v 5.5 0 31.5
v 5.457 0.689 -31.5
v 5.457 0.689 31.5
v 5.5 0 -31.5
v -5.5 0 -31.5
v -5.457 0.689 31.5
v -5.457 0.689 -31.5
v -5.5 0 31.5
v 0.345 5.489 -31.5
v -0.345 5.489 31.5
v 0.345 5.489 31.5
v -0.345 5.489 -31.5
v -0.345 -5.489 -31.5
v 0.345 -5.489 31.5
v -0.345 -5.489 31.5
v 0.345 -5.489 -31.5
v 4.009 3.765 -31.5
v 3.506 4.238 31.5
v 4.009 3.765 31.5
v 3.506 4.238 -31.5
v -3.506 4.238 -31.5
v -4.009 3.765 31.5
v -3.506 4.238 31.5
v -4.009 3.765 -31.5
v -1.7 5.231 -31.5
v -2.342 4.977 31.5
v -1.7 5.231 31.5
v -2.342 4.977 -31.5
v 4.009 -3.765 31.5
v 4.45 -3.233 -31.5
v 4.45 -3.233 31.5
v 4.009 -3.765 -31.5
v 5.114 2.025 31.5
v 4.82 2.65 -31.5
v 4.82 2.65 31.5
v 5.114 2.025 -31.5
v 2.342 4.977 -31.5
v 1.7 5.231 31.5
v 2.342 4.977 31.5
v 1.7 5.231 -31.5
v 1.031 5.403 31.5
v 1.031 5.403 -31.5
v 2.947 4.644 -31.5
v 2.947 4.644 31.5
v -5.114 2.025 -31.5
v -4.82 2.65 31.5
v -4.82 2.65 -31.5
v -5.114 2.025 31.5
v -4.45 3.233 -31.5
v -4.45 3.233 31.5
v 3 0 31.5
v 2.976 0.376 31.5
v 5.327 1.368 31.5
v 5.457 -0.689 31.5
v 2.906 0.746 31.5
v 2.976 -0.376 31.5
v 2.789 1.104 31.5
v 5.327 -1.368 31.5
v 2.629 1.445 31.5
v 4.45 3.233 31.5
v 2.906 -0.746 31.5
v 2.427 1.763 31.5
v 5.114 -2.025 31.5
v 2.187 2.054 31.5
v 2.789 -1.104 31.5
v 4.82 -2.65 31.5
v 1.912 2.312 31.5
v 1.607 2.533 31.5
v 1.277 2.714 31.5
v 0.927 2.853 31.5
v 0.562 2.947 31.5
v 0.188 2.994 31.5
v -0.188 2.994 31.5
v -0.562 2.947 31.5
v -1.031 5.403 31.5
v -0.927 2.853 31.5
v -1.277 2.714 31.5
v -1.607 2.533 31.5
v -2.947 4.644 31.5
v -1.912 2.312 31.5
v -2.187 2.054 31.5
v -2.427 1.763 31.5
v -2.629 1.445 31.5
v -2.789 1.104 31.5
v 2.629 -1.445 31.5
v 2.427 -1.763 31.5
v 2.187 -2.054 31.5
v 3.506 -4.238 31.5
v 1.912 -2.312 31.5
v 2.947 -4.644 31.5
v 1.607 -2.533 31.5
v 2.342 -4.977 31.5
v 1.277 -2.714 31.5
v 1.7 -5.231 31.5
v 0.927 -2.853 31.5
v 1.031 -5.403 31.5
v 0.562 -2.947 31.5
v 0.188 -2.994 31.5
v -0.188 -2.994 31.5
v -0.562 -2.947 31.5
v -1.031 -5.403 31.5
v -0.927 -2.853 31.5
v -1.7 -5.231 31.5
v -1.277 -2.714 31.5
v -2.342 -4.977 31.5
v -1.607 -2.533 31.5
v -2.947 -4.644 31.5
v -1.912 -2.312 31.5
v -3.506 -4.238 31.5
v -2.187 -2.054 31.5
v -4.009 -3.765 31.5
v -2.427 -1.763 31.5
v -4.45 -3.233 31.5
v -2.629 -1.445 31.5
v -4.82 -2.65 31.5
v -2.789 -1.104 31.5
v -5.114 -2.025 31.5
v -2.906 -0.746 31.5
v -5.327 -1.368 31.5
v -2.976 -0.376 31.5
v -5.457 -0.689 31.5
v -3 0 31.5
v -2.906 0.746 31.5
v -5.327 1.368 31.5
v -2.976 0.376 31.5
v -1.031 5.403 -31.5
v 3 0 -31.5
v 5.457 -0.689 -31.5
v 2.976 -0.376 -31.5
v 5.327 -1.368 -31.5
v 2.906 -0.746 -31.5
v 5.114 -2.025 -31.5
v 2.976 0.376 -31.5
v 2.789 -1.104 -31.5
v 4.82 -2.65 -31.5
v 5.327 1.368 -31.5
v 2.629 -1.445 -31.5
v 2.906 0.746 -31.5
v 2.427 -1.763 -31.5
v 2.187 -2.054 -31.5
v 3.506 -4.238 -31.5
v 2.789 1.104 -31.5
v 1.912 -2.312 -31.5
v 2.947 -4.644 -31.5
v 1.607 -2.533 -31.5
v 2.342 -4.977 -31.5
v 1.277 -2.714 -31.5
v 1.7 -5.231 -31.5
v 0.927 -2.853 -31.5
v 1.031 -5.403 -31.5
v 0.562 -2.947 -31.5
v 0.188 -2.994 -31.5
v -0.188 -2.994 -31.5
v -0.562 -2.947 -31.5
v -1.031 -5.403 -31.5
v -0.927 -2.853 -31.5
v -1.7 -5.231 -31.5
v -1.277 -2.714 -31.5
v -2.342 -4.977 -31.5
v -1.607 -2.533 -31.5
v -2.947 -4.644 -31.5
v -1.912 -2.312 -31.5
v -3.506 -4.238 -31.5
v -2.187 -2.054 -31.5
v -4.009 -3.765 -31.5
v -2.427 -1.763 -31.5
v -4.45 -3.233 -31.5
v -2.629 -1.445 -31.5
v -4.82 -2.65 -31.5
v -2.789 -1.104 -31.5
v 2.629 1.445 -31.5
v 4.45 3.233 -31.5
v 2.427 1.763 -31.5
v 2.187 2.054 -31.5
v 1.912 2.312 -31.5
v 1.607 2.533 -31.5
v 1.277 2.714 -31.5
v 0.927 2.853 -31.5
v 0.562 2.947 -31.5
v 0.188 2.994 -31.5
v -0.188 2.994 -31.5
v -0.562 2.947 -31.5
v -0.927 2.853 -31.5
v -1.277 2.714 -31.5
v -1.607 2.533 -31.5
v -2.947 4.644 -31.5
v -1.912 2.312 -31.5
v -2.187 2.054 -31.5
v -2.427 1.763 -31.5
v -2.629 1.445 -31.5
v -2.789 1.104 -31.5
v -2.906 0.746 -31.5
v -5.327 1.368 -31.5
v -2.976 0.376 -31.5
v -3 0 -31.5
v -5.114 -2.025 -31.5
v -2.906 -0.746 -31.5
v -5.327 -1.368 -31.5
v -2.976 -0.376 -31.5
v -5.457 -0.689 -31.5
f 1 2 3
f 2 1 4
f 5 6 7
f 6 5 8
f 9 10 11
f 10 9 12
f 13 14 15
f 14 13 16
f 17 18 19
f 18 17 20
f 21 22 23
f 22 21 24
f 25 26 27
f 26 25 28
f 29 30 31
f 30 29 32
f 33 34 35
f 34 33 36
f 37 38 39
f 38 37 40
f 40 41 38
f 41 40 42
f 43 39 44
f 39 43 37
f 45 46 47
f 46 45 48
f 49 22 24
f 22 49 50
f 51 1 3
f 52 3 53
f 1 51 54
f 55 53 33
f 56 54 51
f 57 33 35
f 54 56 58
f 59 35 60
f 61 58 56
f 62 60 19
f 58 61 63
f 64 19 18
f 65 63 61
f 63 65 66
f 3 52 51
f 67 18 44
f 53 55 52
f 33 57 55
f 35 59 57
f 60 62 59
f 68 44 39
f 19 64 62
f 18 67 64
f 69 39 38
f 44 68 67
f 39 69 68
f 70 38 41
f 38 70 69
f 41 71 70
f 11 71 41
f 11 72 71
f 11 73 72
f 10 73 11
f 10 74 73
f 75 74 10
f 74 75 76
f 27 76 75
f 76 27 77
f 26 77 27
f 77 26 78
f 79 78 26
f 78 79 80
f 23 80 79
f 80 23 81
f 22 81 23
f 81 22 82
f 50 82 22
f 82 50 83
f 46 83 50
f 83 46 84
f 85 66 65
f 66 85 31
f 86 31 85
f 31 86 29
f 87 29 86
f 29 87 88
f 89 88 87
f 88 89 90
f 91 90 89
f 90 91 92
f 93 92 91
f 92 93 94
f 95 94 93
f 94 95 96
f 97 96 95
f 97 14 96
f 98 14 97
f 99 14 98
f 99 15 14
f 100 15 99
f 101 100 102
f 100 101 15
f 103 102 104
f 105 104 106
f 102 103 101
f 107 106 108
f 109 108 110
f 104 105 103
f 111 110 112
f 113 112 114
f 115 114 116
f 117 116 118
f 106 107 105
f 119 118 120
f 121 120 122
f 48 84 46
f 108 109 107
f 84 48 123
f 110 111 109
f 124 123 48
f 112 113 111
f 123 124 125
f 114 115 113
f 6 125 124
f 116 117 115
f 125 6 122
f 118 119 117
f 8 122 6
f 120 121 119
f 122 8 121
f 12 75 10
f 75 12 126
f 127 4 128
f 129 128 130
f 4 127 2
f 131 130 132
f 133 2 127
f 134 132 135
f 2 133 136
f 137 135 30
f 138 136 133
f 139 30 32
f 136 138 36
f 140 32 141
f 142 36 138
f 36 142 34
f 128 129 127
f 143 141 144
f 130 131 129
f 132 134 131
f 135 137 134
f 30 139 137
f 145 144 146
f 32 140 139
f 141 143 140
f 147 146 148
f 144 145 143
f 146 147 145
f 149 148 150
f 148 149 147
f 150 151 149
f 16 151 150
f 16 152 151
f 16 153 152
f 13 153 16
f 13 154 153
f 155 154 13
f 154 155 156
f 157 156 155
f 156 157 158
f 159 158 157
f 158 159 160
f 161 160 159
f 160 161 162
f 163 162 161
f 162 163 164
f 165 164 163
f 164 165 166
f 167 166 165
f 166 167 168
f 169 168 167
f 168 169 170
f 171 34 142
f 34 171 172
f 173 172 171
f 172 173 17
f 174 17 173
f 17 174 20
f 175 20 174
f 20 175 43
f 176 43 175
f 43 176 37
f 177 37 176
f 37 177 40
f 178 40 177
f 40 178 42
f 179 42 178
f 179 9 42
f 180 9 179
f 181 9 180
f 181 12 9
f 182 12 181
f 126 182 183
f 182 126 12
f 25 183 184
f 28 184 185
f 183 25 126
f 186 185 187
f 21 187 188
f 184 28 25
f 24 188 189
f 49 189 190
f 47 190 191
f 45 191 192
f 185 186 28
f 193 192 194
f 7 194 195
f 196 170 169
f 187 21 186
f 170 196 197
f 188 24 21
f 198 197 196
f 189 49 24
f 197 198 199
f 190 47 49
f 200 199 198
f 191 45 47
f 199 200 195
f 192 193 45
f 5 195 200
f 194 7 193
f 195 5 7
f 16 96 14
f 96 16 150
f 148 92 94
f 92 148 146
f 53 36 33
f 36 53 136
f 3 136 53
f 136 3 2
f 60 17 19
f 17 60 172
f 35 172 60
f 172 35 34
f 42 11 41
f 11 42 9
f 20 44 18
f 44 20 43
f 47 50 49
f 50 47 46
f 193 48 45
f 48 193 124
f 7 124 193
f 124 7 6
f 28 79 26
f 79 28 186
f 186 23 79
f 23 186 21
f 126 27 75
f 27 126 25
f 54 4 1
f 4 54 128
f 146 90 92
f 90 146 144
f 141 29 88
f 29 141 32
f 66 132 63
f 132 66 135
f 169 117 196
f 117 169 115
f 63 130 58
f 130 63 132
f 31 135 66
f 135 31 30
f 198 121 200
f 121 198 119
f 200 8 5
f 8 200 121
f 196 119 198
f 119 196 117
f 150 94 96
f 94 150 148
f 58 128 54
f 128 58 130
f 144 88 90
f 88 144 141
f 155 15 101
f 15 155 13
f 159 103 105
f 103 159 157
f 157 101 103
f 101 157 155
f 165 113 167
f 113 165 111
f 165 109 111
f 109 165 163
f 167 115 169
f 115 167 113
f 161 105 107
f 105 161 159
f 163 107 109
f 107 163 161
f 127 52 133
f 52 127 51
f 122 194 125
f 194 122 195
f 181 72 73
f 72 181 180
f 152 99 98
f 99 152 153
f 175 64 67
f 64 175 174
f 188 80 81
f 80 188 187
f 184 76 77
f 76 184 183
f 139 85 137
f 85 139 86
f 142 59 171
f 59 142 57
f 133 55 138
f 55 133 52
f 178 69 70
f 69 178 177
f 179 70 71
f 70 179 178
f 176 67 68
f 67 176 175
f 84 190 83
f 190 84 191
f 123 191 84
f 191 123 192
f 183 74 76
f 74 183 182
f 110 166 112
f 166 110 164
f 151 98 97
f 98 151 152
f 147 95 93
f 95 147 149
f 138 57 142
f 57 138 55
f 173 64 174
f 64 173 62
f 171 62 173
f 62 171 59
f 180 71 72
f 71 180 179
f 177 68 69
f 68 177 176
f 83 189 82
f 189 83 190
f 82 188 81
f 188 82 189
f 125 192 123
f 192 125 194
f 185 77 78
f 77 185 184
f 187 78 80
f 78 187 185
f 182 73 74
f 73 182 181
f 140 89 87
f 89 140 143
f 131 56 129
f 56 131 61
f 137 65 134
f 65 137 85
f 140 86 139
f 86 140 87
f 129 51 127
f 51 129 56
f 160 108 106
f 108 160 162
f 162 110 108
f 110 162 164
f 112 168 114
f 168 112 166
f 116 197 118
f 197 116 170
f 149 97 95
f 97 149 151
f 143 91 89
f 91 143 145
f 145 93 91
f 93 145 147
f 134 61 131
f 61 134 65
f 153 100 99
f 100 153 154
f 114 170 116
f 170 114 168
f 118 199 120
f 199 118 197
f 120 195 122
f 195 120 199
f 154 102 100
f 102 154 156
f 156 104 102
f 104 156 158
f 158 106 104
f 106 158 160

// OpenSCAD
$fn = 50;


difference() {
	union() {
		translate(v = [0, 0, -31.5000000000]) {
			cylinder(h = 63, r = 5.5000000000);
		}
	}
	union() {
		translate(v = [0, 0, -100.0000000000]) {
			cylinder(h = 200, r = 3);
		}
	}
}
